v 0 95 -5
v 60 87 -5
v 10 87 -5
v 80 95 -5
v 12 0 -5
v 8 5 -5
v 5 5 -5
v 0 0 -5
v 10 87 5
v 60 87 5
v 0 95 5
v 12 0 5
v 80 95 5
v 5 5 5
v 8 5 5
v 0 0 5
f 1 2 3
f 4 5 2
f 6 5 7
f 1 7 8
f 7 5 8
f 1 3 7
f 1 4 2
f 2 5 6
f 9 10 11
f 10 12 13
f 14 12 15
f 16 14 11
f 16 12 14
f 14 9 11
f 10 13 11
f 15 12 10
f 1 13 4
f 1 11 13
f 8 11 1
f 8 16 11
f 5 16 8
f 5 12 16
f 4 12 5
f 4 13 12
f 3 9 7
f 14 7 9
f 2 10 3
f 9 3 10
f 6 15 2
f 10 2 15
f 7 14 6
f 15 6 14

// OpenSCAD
module podpora() {
   triangle_points =[
   [0,0],   [12, 0],[80,95],[0, 95],
   [5,5],  [8,5],[60, 87],[10,87]
   ];
   triangle_paths =[[0,1,2,3],[4,5,6,7]];
   polygon(triangle_points,triangle_paths);

}


linear_extrude(height = 10, center = true, convexity = 10, twist = 0)
  podpora()
;
